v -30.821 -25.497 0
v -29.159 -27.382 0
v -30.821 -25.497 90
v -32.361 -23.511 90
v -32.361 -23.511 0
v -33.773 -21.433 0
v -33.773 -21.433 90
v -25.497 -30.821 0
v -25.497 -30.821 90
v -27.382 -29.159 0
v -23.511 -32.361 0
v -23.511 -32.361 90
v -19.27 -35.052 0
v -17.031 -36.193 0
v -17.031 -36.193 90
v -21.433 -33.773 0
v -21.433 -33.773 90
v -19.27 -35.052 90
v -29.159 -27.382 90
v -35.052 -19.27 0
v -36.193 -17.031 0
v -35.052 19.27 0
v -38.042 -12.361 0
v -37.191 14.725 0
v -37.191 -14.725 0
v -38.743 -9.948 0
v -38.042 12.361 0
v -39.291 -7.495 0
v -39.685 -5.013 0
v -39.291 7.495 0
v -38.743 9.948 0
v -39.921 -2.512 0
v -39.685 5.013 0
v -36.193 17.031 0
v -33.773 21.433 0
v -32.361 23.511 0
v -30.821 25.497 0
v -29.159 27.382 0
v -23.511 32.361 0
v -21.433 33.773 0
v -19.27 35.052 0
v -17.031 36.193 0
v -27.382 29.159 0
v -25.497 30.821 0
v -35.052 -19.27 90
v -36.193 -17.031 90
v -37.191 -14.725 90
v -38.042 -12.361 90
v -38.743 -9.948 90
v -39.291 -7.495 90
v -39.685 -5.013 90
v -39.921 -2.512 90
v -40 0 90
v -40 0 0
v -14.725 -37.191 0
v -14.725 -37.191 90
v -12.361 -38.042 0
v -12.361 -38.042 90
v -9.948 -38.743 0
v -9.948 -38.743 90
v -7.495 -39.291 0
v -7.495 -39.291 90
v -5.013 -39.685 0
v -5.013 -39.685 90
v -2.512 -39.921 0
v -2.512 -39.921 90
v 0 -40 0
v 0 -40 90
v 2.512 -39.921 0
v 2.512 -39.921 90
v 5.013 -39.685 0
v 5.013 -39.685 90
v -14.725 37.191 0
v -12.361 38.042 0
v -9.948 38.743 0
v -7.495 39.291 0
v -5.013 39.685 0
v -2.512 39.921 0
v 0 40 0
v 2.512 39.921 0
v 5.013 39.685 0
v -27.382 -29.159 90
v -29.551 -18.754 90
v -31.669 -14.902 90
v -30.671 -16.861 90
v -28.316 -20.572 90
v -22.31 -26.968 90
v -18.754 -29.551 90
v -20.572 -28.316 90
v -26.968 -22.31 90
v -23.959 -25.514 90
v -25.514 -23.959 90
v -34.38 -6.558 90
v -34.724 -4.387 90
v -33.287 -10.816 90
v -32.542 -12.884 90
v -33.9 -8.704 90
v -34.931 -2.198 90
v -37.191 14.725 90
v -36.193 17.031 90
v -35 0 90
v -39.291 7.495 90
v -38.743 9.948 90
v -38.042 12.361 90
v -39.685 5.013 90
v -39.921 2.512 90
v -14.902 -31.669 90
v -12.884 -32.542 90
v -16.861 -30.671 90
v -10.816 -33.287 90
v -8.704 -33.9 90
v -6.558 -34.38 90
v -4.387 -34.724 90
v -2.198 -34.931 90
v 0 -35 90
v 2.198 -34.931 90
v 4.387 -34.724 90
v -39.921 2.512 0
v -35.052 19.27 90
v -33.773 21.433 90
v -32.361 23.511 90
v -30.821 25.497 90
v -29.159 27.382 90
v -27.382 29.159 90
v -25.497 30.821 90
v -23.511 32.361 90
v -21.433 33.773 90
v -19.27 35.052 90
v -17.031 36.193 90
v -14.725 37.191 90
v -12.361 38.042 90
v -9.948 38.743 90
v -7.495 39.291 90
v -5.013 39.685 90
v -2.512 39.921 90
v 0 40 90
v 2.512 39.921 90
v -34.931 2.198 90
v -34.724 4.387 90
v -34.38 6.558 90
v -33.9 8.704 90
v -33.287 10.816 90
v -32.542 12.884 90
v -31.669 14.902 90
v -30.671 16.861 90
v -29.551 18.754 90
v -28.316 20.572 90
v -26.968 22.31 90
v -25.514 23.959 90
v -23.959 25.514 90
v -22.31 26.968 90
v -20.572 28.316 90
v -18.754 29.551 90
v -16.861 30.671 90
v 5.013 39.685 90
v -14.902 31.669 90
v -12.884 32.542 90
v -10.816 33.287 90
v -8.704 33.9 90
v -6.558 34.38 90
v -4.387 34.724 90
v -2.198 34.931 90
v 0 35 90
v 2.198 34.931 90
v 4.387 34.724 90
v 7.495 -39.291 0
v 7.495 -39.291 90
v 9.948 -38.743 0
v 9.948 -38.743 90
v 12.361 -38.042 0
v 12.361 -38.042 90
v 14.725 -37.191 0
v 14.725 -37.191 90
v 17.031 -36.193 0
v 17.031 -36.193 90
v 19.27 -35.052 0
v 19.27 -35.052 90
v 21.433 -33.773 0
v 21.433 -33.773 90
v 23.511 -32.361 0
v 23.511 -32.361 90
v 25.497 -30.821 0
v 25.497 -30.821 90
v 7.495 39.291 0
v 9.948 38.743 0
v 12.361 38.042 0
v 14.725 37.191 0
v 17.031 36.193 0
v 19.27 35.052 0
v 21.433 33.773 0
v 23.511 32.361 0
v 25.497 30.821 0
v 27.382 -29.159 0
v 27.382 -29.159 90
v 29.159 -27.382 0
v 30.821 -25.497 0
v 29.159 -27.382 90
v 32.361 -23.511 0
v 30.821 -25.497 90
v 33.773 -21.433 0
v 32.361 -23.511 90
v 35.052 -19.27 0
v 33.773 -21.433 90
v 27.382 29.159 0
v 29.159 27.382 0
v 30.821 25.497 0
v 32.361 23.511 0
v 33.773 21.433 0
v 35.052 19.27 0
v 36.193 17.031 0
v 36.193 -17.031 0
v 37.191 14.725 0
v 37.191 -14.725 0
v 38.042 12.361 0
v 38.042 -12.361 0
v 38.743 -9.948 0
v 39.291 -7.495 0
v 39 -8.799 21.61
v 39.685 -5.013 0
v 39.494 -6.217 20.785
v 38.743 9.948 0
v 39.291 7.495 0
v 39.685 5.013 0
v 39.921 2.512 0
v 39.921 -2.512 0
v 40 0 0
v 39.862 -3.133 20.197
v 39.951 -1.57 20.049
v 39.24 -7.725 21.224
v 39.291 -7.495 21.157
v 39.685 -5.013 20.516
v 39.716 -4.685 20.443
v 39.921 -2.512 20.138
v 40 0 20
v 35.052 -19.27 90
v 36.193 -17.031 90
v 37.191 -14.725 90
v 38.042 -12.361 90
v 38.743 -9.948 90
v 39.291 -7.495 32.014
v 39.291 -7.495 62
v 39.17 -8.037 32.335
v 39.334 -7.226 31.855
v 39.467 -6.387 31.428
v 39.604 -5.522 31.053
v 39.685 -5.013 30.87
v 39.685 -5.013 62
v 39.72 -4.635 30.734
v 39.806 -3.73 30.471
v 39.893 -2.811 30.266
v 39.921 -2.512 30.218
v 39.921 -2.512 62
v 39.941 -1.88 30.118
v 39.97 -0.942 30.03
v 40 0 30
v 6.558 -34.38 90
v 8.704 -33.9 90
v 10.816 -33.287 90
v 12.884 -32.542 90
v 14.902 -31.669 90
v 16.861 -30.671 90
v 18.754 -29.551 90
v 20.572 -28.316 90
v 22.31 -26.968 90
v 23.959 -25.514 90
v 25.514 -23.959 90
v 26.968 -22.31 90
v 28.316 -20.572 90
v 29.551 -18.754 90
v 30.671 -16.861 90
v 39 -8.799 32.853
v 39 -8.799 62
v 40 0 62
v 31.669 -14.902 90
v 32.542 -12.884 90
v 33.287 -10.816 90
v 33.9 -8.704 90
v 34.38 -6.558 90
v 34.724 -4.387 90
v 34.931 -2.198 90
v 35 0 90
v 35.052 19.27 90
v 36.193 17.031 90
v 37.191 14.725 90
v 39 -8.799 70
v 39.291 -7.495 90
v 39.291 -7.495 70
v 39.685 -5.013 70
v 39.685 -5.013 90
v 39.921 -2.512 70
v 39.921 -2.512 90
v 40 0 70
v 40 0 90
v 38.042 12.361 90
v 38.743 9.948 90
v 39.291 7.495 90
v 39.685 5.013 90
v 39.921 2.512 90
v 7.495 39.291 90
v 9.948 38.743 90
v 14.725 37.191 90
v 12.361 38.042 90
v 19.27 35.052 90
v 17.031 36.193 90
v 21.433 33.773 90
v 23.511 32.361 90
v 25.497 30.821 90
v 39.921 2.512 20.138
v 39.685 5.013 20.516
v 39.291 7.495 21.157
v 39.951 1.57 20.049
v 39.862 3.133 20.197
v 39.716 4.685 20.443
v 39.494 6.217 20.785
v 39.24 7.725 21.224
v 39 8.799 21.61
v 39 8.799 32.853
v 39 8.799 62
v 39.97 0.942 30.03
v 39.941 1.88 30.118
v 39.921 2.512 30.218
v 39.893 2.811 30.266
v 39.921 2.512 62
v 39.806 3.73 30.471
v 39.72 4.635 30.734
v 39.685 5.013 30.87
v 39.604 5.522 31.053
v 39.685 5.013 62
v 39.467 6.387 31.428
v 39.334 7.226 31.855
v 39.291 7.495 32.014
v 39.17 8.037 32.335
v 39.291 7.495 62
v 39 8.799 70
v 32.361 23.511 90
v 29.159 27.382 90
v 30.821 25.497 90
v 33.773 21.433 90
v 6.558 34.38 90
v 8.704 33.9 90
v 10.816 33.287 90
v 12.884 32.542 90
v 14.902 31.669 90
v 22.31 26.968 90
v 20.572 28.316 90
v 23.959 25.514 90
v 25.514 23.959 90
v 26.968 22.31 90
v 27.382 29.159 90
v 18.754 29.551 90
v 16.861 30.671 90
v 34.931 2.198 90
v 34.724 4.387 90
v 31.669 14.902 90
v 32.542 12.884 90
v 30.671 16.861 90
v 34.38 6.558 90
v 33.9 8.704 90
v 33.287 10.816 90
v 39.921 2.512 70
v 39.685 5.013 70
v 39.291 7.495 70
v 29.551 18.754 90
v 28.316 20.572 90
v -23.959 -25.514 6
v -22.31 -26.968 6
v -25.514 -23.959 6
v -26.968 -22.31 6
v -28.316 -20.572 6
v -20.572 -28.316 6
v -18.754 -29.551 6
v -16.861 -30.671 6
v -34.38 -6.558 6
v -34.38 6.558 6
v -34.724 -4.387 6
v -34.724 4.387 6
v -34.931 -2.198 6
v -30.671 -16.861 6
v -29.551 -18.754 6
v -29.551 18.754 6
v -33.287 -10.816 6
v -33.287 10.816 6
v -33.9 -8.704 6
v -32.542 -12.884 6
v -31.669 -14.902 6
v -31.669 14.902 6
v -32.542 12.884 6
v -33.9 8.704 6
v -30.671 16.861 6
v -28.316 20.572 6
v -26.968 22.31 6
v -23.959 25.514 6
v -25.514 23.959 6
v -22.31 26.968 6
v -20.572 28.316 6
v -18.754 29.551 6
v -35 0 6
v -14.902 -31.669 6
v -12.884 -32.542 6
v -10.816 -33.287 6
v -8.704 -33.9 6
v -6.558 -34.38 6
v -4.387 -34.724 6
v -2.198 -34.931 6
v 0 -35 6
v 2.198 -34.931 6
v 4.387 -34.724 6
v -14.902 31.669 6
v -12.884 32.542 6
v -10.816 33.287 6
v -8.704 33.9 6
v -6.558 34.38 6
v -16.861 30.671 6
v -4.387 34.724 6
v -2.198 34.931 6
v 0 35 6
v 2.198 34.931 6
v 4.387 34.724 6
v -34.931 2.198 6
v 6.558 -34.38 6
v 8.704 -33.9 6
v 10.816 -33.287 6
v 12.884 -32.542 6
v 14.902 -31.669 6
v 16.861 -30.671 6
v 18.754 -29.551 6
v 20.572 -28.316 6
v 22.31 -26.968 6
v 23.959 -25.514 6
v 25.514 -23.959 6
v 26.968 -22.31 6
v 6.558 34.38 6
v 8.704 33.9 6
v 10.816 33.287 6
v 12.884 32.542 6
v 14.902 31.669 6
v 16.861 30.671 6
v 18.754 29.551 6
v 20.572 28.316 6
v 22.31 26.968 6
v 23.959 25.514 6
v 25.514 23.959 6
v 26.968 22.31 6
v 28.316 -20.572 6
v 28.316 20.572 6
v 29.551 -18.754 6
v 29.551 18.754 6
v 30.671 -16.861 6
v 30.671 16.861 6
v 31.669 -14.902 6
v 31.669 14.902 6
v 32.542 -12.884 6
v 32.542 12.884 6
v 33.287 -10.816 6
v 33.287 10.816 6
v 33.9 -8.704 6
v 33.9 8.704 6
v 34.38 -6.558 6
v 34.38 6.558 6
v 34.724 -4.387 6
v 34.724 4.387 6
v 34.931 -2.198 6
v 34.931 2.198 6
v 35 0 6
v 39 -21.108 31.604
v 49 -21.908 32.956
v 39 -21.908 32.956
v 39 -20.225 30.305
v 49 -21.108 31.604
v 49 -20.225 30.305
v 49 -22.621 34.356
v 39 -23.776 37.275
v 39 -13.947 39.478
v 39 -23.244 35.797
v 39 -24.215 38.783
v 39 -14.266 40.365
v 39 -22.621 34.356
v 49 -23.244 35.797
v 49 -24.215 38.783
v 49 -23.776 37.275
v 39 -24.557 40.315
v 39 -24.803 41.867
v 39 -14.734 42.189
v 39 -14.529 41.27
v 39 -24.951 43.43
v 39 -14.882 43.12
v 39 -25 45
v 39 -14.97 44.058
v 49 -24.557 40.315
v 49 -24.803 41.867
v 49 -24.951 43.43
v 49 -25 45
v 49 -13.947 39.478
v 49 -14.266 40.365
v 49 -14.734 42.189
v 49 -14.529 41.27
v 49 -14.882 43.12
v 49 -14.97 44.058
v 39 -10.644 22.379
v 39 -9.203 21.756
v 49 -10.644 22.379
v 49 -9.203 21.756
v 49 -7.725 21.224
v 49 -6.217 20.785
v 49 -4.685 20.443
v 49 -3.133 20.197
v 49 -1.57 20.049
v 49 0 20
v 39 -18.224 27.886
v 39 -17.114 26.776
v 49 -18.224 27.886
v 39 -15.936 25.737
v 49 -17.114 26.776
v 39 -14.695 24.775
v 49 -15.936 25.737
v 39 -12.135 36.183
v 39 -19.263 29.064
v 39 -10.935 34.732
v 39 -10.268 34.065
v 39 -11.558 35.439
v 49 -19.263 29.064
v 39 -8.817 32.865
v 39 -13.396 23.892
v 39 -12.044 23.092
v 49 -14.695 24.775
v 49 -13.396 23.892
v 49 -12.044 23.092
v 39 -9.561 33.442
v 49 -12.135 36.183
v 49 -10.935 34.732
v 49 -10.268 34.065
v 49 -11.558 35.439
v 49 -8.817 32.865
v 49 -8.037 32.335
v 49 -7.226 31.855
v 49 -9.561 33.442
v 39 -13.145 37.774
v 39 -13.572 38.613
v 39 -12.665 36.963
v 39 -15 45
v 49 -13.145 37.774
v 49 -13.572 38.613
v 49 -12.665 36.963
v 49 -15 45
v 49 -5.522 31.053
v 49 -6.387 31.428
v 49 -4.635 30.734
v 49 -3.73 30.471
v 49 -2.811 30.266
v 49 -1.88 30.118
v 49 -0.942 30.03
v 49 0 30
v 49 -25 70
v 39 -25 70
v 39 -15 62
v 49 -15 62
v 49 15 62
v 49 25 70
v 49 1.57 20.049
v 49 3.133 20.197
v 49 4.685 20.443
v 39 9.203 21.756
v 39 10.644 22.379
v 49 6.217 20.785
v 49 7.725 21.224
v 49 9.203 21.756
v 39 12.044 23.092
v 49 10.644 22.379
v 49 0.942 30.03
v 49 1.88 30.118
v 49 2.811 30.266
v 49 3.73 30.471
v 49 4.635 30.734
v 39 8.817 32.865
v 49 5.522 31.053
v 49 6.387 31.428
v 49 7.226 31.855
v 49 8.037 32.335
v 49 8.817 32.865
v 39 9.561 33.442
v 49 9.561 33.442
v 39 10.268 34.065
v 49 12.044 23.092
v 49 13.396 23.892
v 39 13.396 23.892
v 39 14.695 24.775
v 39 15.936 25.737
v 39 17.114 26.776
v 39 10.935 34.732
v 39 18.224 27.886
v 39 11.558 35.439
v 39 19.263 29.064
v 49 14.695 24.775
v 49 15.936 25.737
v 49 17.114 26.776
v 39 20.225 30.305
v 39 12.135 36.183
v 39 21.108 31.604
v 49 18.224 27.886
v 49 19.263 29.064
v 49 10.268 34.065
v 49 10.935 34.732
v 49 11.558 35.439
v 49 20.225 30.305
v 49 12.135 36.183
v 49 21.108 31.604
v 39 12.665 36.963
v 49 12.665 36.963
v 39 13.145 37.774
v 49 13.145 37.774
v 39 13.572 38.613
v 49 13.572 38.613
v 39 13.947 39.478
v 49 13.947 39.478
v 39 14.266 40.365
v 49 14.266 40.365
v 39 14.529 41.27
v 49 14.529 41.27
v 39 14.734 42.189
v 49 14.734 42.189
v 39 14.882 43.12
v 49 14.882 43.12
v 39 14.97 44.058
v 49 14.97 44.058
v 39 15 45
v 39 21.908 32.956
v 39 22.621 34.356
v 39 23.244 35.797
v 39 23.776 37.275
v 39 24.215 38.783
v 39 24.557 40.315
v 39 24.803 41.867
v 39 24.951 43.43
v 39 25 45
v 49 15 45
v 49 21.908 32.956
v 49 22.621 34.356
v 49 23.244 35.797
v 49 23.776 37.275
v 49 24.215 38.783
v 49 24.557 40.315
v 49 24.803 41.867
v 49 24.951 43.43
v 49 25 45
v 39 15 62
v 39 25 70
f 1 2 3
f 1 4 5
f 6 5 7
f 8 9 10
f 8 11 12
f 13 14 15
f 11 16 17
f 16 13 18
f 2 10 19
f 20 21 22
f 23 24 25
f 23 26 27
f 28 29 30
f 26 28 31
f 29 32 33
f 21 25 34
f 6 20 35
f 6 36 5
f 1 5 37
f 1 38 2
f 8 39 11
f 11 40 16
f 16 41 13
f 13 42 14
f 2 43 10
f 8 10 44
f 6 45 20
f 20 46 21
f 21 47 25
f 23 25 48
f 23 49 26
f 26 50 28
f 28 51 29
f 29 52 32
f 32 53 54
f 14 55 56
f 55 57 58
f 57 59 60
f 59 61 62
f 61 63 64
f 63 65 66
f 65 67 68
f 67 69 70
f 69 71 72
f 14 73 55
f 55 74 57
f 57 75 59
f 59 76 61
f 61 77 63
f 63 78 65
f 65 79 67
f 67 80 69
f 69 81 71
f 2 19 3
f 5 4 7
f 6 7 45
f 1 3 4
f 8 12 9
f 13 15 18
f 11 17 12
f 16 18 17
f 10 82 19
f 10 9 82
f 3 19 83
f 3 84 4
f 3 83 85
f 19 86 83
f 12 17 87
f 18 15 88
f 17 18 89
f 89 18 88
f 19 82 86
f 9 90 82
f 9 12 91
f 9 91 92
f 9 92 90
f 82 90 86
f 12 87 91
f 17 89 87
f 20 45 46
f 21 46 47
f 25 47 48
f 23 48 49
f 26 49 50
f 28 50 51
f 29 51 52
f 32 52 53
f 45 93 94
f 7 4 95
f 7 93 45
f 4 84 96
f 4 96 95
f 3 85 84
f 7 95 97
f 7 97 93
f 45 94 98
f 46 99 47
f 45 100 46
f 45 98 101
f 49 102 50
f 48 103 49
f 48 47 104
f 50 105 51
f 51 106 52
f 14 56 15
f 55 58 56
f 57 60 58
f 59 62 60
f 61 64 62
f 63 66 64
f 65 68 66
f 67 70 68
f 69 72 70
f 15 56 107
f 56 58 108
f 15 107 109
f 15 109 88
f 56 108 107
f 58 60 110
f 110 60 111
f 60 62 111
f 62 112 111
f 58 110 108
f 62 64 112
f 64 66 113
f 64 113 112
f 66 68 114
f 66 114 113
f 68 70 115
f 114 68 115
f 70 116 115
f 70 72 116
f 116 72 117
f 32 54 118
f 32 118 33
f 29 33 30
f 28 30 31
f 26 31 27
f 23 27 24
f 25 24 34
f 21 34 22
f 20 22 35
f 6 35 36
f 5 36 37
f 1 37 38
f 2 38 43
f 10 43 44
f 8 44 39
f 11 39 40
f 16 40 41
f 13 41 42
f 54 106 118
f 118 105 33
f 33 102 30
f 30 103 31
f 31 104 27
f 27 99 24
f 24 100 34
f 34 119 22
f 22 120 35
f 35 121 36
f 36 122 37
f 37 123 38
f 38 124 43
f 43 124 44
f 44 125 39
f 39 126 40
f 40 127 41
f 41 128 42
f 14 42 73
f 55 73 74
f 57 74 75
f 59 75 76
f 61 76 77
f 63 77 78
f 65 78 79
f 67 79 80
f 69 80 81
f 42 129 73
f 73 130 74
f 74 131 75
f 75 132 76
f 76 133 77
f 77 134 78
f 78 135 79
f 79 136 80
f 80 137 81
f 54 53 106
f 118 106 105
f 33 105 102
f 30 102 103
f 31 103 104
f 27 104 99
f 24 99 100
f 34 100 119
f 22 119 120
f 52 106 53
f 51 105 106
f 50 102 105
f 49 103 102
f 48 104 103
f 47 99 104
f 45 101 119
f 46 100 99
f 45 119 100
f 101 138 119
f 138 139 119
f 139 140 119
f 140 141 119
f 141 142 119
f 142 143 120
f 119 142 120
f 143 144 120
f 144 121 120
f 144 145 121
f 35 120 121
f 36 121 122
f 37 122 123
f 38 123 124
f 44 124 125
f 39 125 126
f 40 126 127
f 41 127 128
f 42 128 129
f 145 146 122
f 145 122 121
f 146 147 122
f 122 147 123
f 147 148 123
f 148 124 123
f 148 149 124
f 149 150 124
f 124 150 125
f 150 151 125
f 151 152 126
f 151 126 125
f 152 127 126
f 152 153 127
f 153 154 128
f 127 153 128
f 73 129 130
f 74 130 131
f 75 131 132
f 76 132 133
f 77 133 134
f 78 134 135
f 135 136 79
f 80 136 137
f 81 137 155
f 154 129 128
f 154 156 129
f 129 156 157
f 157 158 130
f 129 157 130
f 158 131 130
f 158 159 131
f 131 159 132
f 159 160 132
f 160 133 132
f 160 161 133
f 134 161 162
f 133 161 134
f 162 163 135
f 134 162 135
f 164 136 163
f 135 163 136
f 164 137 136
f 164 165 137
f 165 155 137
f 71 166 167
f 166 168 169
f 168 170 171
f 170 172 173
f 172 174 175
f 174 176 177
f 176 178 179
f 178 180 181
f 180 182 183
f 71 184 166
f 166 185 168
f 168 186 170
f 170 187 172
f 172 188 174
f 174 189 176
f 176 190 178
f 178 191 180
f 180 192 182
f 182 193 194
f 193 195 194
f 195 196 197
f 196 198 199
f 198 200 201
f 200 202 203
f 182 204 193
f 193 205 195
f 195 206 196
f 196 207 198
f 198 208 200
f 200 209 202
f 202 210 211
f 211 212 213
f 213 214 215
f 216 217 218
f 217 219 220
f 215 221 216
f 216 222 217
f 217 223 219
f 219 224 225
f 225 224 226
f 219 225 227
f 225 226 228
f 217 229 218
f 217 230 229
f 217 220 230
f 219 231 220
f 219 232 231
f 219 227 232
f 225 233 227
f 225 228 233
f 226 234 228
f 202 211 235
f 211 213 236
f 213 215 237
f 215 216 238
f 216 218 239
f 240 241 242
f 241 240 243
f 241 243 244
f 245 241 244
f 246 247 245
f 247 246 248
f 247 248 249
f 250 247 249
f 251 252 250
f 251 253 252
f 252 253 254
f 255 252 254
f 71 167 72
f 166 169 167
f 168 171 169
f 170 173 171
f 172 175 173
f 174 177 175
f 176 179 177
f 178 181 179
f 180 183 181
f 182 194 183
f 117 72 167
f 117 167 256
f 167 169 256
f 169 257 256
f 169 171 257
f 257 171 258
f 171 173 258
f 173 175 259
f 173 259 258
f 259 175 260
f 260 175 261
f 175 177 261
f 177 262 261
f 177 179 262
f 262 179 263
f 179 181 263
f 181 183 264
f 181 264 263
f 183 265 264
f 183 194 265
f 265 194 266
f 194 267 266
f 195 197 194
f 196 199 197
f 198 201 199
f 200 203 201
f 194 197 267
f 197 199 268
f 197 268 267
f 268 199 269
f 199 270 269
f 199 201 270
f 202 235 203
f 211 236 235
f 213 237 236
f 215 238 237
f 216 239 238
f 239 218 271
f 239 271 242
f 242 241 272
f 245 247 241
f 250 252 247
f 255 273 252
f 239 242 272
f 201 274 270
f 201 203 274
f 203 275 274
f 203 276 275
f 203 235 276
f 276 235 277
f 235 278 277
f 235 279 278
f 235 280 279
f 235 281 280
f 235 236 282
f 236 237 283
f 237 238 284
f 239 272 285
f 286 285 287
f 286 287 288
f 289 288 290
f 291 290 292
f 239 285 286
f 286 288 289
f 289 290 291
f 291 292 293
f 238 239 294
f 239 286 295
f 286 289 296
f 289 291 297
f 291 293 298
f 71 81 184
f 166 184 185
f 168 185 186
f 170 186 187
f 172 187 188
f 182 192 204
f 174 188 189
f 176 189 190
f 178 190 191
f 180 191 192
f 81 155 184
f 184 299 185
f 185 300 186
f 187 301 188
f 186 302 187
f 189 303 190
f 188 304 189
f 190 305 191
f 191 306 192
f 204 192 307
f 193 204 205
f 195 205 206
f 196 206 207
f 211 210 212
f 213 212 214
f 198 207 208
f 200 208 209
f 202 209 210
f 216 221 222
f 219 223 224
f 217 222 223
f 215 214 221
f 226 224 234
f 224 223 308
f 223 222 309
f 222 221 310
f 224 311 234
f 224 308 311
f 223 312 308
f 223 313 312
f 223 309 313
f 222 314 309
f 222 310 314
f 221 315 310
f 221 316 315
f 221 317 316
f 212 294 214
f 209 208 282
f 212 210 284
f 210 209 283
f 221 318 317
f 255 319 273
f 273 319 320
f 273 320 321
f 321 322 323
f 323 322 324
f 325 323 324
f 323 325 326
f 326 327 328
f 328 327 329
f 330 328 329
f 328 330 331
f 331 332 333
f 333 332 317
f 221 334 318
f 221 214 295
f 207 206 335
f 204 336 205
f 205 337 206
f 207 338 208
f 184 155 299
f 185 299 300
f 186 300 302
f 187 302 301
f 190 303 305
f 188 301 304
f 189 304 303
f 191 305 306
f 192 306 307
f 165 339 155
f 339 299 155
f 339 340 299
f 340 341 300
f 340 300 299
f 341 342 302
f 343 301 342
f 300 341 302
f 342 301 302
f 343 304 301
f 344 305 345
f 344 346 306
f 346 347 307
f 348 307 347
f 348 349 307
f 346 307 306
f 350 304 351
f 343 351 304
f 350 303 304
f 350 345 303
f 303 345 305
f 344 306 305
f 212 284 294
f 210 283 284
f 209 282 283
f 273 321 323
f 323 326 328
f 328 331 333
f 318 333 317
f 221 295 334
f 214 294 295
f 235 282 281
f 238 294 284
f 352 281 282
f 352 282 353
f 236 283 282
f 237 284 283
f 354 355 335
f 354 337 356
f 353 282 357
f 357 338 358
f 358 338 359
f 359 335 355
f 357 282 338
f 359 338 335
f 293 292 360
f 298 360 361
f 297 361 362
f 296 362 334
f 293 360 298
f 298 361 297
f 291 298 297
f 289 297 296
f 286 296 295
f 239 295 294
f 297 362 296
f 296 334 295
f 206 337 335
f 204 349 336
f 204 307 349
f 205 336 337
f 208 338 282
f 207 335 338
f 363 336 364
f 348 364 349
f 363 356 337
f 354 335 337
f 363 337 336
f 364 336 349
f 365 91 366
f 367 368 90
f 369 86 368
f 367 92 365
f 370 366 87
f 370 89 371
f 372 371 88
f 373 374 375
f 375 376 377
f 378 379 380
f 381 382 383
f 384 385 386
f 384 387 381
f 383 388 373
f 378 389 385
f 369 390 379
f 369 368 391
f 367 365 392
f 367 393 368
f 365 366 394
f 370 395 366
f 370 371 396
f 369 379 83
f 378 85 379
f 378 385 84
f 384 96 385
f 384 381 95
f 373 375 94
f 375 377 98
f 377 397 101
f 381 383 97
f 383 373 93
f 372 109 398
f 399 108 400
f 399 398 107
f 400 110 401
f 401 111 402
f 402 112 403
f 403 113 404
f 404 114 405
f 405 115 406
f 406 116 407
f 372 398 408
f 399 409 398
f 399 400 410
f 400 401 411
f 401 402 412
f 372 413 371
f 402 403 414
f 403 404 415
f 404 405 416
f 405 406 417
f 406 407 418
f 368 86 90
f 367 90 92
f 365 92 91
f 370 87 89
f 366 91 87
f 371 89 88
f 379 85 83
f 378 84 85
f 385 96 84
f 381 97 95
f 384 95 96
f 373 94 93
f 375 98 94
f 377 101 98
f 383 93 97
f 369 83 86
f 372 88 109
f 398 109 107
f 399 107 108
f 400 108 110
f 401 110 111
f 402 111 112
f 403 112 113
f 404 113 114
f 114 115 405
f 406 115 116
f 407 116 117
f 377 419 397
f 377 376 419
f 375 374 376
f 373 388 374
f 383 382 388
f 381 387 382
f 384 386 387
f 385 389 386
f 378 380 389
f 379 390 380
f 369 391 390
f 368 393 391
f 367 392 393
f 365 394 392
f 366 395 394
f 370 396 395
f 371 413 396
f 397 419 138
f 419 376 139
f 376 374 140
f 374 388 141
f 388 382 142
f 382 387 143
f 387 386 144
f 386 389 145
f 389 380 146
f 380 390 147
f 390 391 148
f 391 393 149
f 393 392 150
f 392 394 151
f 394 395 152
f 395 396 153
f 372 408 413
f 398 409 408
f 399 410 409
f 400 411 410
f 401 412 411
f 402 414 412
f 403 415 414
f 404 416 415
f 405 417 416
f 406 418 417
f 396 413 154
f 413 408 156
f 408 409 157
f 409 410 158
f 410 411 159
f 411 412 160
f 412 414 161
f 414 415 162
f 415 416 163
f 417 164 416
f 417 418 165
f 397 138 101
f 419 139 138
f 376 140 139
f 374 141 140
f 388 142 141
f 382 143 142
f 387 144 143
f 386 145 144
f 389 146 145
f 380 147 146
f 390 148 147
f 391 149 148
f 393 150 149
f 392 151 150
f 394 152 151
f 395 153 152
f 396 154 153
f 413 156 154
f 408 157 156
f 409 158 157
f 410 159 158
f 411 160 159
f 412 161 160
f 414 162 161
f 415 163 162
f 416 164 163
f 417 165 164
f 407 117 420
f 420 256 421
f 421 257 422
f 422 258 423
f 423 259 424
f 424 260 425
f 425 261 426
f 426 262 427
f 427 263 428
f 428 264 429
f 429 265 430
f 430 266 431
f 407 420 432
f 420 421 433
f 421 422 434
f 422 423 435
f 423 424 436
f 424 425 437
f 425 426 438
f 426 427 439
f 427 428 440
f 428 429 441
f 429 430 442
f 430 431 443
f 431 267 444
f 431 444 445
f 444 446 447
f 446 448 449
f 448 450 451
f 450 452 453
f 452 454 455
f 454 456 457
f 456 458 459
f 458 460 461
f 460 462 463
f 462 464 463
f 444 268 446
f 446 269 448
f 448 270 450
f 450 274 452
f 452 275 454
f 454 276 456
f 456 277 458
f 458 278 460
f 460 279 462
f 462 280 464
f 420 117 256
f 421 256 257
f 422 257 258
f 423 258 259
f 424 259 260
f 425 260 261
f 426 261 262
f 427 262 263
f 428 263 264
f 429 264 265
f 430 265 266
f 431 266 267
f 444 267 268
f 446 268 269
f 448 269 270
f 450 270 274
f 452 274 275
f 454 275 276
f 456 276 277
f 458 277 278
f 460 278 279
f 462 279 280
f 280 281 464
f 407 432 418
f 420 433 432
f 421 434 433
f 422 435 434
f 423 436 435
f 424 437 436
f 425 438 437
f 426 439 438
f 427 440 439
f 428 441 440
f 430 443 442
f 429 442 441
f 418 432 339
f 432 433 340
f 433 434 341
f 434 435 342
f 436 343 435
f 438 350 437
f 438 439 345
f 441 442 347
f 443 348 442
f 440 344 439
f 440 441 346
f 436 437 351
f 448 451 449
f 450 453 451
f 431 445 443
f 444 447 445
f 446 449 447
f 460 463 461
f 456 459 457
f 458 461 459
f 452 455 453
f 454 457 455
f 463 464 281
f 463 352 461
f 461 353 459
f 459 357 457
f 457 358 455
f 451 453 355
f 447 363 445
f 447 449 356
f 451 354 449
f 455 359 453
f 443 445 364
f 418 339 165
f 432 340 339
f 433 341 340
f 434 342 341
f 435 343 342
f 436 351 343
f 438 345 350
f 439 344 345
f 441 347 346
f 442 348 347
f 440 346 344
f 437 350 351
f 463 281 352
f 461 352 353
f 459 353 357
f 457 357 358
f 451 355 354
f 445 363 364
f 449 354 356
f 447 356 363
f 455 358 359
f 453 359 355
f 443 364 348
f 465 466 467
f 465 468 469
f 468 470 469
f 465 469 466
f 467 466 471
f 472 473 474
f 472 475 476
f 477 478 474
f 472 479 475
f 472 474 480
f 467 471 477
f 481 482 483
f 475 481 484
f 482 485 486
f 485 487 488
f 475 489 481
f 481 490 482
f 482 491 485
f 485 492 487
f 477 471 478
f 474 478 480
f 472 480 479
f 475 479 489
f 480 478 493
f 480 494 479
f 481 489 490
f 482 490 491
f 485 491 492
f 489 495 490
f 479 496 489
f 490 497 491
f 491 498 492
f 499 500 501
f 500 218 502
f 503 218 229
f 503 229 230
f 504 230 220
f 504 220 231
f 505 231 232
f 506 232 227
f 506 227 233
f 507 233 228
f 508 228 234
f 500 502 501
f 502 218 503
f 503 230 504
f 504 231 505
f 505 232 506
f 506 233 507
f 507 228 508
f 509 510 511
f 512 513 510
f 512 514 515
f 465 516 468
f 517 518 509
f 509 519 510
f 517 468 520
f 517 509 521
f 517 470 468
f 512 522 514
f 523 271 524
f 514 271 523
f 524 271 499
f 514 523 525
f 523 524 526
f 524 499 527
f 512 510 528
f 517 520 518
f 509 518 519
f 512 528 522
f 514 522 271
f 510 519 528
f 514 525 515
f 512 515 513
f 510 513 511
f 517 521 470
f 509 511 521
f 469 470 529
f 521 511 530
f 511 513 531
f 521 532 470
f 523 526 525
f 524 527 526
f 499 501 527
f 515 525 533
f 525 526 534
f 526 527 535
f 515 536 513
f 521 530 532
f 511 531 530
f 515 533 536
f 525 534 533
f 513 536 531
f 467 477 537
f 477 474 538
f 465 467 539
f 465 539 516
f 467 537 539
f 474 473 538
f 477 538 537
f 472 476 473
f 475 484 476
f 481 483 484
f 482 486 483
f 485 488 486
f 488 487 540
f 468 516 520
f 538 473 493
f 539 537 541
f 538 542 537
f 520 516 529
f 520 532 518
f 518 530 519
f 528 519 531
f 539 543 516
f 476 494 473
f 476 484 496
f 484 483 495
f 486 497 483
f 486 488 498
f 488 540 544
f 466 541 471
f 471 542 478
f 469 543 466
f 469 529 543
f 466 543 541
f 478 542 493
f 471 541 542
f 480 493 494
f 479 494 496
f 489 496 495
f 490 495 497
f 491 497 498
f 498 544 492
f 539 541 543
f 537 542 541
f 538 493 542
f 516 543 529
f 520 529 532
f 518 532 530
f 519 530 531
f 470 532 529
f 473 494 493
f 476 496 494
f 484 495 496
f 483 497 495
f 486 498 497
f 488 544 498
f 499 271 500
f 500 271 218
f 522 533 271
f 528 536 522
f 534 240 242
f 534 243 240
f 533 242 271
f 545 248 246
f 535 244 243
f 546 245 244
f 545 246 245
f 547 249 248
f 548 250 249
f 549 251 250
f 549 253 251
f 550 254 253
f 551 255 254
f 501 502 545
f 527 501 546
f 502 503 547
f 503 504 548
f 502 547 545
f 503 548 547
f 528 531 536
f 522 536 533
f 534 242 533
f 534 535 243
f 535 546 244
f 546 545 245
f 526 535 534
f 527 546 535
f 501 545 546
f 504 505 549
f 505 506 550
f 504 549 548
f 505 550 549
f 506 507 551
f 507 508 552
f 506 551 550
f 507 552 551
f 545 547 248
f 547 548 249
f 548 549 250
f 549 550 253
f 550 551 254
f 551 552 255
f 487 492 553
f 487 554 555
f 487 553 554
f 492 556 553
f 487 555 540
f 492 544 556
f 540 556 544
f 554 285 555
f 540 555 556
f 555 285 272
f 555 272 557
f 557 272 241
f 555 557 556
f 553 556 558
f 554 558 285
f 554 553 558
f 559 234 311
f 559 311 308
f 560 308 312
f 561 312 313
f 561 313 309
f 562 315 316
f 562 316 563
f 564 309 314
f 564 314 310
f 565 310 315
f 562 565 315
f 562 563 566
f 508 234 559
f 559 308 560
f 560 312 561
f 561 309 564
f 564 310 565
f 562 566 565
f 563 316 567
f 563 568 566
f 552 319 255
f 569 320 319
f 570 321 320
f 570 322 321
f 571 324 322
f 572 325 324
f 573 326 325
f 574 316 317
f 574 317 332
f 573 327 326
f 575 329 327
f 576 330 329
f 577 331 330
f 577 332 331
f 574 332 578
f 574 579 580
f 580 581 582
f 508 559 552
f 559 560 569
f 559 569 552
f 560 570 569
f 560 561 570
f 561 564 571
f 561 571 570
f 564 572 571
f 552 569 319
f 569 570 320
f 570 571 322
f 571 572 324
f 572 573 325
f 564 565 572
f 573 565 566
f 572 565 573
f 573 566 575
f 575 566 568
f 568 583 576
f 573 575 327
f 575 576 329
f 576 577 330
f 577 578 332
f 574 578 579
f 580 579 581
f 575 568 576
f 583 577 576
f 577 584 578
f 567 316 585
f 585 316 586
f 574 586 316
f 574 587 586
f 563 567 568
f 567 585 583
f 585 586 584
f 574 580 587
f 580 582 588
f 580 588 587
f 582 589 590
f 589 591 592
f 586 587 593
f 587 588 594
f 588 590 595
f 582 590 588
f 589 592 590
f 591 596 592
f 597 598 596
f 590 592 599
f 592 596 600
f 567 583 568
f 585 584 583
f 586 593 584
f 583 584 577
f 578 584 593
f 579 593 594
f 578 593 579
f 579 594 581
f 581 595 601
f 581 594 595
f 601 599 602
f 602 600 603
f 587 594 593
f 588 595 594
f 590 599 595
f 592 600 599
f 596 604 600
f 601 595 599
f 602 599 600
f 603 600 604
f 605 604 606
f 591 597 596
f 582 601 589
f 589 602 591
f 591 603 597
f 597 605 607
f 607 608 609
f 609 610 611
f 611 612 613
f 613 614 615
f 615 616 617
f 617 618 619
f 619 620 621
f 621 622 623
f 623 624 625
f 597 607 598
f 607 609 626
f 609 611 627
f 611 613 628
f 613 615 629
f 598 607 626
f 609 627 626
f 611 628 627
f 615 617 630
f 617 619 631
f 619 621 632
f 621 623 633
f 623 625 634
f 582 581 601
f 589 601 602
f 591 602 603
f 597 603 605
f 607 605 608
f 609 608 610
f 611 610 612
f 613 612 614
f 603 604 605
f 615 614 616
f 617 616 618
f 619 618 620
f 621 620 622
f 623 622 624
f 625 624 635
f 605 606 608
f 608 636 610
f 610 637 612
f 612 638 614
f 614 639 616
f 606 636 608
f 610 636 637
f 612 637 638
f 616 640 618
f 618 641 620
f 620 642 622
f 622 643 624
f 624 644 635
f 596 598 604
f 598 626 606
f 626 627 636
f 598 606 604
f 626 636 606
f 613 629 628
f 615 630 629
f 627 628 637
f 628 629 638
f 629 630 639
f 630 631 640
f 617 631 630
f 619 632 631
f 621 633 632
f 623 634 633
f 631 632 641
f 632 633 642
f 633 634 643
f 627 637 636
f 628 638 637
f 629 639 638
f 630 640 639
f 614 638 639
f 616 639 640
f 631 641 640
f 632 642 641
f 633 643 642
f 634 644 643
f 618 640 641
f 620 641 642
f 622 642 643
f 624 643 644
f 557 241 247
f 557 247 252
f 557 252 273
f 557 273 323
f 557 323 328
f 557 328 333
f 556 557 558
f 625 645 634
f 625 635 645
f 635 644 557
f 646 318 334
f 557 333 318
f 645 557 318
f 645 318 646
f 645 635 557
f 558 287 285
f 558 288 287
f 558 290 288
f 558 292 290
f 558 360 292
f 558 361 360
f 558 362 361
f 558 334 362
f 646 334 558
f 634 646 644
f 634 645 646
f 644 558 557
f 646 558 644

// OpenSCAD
$fn = 100;

// マグ本体のパラメータ
outer_d = 80;
inner_d = 70;
height = 90;
bottom_thick = 6;

// 取手のパラメータ
handle_inner_h = 30;
handle_inner_w = 25;
handle_thick = 10;

// マグ本体の作成
module mug_body() {
    difference() {
        cylinder(d = outer_d, h = height);
        translate([0, 0, bottom_thick])
            cylinder(d = inner_d, h = height - bottom_thick + 0.1);
    }
}

// 取手の作成
module handle() {
    // D字形状をMinkowski等を使わず、円柱と直方体の組み合わせで滑らかに構築
    // 取手の高さは inner_h + 上下厚み、幅は inner_w + 外側厚み
    h_outer_d = handle_inner_h + 2 * handle_thick;
    
    translate([outer_d / 2 - 1, 0, height / 2]) {
        rotate([0, 90, 0]) {
            linear_extrude(height = handle_thick) {
                difference() {
                    // 外形: 半円と長方形
                    union() {
                        translate([0, 0]) circle(d = h_outer_d);
                        translate([-h_outer_d / 2, -h_outer_d / 2]) square([h_outer_d / 2, h_outer_d]);
                    }
                    // 内穴: 半円と長方形
                    union() {
                        translate([0, 0]) circle(d = handle_inner_h);
                        translate([-handle_inner_h / 2 - 2, -handle_inner_h / 2]) square([handle_inner_h / 2 + 2, handle_inner_h]);
                    }
                }
            }
        }
    }
}

// 本体と取手の接合部を確実にするため、わずかにめり込ませてマニフォールドを維持
union() {
    mug_body();
    handle();
}
